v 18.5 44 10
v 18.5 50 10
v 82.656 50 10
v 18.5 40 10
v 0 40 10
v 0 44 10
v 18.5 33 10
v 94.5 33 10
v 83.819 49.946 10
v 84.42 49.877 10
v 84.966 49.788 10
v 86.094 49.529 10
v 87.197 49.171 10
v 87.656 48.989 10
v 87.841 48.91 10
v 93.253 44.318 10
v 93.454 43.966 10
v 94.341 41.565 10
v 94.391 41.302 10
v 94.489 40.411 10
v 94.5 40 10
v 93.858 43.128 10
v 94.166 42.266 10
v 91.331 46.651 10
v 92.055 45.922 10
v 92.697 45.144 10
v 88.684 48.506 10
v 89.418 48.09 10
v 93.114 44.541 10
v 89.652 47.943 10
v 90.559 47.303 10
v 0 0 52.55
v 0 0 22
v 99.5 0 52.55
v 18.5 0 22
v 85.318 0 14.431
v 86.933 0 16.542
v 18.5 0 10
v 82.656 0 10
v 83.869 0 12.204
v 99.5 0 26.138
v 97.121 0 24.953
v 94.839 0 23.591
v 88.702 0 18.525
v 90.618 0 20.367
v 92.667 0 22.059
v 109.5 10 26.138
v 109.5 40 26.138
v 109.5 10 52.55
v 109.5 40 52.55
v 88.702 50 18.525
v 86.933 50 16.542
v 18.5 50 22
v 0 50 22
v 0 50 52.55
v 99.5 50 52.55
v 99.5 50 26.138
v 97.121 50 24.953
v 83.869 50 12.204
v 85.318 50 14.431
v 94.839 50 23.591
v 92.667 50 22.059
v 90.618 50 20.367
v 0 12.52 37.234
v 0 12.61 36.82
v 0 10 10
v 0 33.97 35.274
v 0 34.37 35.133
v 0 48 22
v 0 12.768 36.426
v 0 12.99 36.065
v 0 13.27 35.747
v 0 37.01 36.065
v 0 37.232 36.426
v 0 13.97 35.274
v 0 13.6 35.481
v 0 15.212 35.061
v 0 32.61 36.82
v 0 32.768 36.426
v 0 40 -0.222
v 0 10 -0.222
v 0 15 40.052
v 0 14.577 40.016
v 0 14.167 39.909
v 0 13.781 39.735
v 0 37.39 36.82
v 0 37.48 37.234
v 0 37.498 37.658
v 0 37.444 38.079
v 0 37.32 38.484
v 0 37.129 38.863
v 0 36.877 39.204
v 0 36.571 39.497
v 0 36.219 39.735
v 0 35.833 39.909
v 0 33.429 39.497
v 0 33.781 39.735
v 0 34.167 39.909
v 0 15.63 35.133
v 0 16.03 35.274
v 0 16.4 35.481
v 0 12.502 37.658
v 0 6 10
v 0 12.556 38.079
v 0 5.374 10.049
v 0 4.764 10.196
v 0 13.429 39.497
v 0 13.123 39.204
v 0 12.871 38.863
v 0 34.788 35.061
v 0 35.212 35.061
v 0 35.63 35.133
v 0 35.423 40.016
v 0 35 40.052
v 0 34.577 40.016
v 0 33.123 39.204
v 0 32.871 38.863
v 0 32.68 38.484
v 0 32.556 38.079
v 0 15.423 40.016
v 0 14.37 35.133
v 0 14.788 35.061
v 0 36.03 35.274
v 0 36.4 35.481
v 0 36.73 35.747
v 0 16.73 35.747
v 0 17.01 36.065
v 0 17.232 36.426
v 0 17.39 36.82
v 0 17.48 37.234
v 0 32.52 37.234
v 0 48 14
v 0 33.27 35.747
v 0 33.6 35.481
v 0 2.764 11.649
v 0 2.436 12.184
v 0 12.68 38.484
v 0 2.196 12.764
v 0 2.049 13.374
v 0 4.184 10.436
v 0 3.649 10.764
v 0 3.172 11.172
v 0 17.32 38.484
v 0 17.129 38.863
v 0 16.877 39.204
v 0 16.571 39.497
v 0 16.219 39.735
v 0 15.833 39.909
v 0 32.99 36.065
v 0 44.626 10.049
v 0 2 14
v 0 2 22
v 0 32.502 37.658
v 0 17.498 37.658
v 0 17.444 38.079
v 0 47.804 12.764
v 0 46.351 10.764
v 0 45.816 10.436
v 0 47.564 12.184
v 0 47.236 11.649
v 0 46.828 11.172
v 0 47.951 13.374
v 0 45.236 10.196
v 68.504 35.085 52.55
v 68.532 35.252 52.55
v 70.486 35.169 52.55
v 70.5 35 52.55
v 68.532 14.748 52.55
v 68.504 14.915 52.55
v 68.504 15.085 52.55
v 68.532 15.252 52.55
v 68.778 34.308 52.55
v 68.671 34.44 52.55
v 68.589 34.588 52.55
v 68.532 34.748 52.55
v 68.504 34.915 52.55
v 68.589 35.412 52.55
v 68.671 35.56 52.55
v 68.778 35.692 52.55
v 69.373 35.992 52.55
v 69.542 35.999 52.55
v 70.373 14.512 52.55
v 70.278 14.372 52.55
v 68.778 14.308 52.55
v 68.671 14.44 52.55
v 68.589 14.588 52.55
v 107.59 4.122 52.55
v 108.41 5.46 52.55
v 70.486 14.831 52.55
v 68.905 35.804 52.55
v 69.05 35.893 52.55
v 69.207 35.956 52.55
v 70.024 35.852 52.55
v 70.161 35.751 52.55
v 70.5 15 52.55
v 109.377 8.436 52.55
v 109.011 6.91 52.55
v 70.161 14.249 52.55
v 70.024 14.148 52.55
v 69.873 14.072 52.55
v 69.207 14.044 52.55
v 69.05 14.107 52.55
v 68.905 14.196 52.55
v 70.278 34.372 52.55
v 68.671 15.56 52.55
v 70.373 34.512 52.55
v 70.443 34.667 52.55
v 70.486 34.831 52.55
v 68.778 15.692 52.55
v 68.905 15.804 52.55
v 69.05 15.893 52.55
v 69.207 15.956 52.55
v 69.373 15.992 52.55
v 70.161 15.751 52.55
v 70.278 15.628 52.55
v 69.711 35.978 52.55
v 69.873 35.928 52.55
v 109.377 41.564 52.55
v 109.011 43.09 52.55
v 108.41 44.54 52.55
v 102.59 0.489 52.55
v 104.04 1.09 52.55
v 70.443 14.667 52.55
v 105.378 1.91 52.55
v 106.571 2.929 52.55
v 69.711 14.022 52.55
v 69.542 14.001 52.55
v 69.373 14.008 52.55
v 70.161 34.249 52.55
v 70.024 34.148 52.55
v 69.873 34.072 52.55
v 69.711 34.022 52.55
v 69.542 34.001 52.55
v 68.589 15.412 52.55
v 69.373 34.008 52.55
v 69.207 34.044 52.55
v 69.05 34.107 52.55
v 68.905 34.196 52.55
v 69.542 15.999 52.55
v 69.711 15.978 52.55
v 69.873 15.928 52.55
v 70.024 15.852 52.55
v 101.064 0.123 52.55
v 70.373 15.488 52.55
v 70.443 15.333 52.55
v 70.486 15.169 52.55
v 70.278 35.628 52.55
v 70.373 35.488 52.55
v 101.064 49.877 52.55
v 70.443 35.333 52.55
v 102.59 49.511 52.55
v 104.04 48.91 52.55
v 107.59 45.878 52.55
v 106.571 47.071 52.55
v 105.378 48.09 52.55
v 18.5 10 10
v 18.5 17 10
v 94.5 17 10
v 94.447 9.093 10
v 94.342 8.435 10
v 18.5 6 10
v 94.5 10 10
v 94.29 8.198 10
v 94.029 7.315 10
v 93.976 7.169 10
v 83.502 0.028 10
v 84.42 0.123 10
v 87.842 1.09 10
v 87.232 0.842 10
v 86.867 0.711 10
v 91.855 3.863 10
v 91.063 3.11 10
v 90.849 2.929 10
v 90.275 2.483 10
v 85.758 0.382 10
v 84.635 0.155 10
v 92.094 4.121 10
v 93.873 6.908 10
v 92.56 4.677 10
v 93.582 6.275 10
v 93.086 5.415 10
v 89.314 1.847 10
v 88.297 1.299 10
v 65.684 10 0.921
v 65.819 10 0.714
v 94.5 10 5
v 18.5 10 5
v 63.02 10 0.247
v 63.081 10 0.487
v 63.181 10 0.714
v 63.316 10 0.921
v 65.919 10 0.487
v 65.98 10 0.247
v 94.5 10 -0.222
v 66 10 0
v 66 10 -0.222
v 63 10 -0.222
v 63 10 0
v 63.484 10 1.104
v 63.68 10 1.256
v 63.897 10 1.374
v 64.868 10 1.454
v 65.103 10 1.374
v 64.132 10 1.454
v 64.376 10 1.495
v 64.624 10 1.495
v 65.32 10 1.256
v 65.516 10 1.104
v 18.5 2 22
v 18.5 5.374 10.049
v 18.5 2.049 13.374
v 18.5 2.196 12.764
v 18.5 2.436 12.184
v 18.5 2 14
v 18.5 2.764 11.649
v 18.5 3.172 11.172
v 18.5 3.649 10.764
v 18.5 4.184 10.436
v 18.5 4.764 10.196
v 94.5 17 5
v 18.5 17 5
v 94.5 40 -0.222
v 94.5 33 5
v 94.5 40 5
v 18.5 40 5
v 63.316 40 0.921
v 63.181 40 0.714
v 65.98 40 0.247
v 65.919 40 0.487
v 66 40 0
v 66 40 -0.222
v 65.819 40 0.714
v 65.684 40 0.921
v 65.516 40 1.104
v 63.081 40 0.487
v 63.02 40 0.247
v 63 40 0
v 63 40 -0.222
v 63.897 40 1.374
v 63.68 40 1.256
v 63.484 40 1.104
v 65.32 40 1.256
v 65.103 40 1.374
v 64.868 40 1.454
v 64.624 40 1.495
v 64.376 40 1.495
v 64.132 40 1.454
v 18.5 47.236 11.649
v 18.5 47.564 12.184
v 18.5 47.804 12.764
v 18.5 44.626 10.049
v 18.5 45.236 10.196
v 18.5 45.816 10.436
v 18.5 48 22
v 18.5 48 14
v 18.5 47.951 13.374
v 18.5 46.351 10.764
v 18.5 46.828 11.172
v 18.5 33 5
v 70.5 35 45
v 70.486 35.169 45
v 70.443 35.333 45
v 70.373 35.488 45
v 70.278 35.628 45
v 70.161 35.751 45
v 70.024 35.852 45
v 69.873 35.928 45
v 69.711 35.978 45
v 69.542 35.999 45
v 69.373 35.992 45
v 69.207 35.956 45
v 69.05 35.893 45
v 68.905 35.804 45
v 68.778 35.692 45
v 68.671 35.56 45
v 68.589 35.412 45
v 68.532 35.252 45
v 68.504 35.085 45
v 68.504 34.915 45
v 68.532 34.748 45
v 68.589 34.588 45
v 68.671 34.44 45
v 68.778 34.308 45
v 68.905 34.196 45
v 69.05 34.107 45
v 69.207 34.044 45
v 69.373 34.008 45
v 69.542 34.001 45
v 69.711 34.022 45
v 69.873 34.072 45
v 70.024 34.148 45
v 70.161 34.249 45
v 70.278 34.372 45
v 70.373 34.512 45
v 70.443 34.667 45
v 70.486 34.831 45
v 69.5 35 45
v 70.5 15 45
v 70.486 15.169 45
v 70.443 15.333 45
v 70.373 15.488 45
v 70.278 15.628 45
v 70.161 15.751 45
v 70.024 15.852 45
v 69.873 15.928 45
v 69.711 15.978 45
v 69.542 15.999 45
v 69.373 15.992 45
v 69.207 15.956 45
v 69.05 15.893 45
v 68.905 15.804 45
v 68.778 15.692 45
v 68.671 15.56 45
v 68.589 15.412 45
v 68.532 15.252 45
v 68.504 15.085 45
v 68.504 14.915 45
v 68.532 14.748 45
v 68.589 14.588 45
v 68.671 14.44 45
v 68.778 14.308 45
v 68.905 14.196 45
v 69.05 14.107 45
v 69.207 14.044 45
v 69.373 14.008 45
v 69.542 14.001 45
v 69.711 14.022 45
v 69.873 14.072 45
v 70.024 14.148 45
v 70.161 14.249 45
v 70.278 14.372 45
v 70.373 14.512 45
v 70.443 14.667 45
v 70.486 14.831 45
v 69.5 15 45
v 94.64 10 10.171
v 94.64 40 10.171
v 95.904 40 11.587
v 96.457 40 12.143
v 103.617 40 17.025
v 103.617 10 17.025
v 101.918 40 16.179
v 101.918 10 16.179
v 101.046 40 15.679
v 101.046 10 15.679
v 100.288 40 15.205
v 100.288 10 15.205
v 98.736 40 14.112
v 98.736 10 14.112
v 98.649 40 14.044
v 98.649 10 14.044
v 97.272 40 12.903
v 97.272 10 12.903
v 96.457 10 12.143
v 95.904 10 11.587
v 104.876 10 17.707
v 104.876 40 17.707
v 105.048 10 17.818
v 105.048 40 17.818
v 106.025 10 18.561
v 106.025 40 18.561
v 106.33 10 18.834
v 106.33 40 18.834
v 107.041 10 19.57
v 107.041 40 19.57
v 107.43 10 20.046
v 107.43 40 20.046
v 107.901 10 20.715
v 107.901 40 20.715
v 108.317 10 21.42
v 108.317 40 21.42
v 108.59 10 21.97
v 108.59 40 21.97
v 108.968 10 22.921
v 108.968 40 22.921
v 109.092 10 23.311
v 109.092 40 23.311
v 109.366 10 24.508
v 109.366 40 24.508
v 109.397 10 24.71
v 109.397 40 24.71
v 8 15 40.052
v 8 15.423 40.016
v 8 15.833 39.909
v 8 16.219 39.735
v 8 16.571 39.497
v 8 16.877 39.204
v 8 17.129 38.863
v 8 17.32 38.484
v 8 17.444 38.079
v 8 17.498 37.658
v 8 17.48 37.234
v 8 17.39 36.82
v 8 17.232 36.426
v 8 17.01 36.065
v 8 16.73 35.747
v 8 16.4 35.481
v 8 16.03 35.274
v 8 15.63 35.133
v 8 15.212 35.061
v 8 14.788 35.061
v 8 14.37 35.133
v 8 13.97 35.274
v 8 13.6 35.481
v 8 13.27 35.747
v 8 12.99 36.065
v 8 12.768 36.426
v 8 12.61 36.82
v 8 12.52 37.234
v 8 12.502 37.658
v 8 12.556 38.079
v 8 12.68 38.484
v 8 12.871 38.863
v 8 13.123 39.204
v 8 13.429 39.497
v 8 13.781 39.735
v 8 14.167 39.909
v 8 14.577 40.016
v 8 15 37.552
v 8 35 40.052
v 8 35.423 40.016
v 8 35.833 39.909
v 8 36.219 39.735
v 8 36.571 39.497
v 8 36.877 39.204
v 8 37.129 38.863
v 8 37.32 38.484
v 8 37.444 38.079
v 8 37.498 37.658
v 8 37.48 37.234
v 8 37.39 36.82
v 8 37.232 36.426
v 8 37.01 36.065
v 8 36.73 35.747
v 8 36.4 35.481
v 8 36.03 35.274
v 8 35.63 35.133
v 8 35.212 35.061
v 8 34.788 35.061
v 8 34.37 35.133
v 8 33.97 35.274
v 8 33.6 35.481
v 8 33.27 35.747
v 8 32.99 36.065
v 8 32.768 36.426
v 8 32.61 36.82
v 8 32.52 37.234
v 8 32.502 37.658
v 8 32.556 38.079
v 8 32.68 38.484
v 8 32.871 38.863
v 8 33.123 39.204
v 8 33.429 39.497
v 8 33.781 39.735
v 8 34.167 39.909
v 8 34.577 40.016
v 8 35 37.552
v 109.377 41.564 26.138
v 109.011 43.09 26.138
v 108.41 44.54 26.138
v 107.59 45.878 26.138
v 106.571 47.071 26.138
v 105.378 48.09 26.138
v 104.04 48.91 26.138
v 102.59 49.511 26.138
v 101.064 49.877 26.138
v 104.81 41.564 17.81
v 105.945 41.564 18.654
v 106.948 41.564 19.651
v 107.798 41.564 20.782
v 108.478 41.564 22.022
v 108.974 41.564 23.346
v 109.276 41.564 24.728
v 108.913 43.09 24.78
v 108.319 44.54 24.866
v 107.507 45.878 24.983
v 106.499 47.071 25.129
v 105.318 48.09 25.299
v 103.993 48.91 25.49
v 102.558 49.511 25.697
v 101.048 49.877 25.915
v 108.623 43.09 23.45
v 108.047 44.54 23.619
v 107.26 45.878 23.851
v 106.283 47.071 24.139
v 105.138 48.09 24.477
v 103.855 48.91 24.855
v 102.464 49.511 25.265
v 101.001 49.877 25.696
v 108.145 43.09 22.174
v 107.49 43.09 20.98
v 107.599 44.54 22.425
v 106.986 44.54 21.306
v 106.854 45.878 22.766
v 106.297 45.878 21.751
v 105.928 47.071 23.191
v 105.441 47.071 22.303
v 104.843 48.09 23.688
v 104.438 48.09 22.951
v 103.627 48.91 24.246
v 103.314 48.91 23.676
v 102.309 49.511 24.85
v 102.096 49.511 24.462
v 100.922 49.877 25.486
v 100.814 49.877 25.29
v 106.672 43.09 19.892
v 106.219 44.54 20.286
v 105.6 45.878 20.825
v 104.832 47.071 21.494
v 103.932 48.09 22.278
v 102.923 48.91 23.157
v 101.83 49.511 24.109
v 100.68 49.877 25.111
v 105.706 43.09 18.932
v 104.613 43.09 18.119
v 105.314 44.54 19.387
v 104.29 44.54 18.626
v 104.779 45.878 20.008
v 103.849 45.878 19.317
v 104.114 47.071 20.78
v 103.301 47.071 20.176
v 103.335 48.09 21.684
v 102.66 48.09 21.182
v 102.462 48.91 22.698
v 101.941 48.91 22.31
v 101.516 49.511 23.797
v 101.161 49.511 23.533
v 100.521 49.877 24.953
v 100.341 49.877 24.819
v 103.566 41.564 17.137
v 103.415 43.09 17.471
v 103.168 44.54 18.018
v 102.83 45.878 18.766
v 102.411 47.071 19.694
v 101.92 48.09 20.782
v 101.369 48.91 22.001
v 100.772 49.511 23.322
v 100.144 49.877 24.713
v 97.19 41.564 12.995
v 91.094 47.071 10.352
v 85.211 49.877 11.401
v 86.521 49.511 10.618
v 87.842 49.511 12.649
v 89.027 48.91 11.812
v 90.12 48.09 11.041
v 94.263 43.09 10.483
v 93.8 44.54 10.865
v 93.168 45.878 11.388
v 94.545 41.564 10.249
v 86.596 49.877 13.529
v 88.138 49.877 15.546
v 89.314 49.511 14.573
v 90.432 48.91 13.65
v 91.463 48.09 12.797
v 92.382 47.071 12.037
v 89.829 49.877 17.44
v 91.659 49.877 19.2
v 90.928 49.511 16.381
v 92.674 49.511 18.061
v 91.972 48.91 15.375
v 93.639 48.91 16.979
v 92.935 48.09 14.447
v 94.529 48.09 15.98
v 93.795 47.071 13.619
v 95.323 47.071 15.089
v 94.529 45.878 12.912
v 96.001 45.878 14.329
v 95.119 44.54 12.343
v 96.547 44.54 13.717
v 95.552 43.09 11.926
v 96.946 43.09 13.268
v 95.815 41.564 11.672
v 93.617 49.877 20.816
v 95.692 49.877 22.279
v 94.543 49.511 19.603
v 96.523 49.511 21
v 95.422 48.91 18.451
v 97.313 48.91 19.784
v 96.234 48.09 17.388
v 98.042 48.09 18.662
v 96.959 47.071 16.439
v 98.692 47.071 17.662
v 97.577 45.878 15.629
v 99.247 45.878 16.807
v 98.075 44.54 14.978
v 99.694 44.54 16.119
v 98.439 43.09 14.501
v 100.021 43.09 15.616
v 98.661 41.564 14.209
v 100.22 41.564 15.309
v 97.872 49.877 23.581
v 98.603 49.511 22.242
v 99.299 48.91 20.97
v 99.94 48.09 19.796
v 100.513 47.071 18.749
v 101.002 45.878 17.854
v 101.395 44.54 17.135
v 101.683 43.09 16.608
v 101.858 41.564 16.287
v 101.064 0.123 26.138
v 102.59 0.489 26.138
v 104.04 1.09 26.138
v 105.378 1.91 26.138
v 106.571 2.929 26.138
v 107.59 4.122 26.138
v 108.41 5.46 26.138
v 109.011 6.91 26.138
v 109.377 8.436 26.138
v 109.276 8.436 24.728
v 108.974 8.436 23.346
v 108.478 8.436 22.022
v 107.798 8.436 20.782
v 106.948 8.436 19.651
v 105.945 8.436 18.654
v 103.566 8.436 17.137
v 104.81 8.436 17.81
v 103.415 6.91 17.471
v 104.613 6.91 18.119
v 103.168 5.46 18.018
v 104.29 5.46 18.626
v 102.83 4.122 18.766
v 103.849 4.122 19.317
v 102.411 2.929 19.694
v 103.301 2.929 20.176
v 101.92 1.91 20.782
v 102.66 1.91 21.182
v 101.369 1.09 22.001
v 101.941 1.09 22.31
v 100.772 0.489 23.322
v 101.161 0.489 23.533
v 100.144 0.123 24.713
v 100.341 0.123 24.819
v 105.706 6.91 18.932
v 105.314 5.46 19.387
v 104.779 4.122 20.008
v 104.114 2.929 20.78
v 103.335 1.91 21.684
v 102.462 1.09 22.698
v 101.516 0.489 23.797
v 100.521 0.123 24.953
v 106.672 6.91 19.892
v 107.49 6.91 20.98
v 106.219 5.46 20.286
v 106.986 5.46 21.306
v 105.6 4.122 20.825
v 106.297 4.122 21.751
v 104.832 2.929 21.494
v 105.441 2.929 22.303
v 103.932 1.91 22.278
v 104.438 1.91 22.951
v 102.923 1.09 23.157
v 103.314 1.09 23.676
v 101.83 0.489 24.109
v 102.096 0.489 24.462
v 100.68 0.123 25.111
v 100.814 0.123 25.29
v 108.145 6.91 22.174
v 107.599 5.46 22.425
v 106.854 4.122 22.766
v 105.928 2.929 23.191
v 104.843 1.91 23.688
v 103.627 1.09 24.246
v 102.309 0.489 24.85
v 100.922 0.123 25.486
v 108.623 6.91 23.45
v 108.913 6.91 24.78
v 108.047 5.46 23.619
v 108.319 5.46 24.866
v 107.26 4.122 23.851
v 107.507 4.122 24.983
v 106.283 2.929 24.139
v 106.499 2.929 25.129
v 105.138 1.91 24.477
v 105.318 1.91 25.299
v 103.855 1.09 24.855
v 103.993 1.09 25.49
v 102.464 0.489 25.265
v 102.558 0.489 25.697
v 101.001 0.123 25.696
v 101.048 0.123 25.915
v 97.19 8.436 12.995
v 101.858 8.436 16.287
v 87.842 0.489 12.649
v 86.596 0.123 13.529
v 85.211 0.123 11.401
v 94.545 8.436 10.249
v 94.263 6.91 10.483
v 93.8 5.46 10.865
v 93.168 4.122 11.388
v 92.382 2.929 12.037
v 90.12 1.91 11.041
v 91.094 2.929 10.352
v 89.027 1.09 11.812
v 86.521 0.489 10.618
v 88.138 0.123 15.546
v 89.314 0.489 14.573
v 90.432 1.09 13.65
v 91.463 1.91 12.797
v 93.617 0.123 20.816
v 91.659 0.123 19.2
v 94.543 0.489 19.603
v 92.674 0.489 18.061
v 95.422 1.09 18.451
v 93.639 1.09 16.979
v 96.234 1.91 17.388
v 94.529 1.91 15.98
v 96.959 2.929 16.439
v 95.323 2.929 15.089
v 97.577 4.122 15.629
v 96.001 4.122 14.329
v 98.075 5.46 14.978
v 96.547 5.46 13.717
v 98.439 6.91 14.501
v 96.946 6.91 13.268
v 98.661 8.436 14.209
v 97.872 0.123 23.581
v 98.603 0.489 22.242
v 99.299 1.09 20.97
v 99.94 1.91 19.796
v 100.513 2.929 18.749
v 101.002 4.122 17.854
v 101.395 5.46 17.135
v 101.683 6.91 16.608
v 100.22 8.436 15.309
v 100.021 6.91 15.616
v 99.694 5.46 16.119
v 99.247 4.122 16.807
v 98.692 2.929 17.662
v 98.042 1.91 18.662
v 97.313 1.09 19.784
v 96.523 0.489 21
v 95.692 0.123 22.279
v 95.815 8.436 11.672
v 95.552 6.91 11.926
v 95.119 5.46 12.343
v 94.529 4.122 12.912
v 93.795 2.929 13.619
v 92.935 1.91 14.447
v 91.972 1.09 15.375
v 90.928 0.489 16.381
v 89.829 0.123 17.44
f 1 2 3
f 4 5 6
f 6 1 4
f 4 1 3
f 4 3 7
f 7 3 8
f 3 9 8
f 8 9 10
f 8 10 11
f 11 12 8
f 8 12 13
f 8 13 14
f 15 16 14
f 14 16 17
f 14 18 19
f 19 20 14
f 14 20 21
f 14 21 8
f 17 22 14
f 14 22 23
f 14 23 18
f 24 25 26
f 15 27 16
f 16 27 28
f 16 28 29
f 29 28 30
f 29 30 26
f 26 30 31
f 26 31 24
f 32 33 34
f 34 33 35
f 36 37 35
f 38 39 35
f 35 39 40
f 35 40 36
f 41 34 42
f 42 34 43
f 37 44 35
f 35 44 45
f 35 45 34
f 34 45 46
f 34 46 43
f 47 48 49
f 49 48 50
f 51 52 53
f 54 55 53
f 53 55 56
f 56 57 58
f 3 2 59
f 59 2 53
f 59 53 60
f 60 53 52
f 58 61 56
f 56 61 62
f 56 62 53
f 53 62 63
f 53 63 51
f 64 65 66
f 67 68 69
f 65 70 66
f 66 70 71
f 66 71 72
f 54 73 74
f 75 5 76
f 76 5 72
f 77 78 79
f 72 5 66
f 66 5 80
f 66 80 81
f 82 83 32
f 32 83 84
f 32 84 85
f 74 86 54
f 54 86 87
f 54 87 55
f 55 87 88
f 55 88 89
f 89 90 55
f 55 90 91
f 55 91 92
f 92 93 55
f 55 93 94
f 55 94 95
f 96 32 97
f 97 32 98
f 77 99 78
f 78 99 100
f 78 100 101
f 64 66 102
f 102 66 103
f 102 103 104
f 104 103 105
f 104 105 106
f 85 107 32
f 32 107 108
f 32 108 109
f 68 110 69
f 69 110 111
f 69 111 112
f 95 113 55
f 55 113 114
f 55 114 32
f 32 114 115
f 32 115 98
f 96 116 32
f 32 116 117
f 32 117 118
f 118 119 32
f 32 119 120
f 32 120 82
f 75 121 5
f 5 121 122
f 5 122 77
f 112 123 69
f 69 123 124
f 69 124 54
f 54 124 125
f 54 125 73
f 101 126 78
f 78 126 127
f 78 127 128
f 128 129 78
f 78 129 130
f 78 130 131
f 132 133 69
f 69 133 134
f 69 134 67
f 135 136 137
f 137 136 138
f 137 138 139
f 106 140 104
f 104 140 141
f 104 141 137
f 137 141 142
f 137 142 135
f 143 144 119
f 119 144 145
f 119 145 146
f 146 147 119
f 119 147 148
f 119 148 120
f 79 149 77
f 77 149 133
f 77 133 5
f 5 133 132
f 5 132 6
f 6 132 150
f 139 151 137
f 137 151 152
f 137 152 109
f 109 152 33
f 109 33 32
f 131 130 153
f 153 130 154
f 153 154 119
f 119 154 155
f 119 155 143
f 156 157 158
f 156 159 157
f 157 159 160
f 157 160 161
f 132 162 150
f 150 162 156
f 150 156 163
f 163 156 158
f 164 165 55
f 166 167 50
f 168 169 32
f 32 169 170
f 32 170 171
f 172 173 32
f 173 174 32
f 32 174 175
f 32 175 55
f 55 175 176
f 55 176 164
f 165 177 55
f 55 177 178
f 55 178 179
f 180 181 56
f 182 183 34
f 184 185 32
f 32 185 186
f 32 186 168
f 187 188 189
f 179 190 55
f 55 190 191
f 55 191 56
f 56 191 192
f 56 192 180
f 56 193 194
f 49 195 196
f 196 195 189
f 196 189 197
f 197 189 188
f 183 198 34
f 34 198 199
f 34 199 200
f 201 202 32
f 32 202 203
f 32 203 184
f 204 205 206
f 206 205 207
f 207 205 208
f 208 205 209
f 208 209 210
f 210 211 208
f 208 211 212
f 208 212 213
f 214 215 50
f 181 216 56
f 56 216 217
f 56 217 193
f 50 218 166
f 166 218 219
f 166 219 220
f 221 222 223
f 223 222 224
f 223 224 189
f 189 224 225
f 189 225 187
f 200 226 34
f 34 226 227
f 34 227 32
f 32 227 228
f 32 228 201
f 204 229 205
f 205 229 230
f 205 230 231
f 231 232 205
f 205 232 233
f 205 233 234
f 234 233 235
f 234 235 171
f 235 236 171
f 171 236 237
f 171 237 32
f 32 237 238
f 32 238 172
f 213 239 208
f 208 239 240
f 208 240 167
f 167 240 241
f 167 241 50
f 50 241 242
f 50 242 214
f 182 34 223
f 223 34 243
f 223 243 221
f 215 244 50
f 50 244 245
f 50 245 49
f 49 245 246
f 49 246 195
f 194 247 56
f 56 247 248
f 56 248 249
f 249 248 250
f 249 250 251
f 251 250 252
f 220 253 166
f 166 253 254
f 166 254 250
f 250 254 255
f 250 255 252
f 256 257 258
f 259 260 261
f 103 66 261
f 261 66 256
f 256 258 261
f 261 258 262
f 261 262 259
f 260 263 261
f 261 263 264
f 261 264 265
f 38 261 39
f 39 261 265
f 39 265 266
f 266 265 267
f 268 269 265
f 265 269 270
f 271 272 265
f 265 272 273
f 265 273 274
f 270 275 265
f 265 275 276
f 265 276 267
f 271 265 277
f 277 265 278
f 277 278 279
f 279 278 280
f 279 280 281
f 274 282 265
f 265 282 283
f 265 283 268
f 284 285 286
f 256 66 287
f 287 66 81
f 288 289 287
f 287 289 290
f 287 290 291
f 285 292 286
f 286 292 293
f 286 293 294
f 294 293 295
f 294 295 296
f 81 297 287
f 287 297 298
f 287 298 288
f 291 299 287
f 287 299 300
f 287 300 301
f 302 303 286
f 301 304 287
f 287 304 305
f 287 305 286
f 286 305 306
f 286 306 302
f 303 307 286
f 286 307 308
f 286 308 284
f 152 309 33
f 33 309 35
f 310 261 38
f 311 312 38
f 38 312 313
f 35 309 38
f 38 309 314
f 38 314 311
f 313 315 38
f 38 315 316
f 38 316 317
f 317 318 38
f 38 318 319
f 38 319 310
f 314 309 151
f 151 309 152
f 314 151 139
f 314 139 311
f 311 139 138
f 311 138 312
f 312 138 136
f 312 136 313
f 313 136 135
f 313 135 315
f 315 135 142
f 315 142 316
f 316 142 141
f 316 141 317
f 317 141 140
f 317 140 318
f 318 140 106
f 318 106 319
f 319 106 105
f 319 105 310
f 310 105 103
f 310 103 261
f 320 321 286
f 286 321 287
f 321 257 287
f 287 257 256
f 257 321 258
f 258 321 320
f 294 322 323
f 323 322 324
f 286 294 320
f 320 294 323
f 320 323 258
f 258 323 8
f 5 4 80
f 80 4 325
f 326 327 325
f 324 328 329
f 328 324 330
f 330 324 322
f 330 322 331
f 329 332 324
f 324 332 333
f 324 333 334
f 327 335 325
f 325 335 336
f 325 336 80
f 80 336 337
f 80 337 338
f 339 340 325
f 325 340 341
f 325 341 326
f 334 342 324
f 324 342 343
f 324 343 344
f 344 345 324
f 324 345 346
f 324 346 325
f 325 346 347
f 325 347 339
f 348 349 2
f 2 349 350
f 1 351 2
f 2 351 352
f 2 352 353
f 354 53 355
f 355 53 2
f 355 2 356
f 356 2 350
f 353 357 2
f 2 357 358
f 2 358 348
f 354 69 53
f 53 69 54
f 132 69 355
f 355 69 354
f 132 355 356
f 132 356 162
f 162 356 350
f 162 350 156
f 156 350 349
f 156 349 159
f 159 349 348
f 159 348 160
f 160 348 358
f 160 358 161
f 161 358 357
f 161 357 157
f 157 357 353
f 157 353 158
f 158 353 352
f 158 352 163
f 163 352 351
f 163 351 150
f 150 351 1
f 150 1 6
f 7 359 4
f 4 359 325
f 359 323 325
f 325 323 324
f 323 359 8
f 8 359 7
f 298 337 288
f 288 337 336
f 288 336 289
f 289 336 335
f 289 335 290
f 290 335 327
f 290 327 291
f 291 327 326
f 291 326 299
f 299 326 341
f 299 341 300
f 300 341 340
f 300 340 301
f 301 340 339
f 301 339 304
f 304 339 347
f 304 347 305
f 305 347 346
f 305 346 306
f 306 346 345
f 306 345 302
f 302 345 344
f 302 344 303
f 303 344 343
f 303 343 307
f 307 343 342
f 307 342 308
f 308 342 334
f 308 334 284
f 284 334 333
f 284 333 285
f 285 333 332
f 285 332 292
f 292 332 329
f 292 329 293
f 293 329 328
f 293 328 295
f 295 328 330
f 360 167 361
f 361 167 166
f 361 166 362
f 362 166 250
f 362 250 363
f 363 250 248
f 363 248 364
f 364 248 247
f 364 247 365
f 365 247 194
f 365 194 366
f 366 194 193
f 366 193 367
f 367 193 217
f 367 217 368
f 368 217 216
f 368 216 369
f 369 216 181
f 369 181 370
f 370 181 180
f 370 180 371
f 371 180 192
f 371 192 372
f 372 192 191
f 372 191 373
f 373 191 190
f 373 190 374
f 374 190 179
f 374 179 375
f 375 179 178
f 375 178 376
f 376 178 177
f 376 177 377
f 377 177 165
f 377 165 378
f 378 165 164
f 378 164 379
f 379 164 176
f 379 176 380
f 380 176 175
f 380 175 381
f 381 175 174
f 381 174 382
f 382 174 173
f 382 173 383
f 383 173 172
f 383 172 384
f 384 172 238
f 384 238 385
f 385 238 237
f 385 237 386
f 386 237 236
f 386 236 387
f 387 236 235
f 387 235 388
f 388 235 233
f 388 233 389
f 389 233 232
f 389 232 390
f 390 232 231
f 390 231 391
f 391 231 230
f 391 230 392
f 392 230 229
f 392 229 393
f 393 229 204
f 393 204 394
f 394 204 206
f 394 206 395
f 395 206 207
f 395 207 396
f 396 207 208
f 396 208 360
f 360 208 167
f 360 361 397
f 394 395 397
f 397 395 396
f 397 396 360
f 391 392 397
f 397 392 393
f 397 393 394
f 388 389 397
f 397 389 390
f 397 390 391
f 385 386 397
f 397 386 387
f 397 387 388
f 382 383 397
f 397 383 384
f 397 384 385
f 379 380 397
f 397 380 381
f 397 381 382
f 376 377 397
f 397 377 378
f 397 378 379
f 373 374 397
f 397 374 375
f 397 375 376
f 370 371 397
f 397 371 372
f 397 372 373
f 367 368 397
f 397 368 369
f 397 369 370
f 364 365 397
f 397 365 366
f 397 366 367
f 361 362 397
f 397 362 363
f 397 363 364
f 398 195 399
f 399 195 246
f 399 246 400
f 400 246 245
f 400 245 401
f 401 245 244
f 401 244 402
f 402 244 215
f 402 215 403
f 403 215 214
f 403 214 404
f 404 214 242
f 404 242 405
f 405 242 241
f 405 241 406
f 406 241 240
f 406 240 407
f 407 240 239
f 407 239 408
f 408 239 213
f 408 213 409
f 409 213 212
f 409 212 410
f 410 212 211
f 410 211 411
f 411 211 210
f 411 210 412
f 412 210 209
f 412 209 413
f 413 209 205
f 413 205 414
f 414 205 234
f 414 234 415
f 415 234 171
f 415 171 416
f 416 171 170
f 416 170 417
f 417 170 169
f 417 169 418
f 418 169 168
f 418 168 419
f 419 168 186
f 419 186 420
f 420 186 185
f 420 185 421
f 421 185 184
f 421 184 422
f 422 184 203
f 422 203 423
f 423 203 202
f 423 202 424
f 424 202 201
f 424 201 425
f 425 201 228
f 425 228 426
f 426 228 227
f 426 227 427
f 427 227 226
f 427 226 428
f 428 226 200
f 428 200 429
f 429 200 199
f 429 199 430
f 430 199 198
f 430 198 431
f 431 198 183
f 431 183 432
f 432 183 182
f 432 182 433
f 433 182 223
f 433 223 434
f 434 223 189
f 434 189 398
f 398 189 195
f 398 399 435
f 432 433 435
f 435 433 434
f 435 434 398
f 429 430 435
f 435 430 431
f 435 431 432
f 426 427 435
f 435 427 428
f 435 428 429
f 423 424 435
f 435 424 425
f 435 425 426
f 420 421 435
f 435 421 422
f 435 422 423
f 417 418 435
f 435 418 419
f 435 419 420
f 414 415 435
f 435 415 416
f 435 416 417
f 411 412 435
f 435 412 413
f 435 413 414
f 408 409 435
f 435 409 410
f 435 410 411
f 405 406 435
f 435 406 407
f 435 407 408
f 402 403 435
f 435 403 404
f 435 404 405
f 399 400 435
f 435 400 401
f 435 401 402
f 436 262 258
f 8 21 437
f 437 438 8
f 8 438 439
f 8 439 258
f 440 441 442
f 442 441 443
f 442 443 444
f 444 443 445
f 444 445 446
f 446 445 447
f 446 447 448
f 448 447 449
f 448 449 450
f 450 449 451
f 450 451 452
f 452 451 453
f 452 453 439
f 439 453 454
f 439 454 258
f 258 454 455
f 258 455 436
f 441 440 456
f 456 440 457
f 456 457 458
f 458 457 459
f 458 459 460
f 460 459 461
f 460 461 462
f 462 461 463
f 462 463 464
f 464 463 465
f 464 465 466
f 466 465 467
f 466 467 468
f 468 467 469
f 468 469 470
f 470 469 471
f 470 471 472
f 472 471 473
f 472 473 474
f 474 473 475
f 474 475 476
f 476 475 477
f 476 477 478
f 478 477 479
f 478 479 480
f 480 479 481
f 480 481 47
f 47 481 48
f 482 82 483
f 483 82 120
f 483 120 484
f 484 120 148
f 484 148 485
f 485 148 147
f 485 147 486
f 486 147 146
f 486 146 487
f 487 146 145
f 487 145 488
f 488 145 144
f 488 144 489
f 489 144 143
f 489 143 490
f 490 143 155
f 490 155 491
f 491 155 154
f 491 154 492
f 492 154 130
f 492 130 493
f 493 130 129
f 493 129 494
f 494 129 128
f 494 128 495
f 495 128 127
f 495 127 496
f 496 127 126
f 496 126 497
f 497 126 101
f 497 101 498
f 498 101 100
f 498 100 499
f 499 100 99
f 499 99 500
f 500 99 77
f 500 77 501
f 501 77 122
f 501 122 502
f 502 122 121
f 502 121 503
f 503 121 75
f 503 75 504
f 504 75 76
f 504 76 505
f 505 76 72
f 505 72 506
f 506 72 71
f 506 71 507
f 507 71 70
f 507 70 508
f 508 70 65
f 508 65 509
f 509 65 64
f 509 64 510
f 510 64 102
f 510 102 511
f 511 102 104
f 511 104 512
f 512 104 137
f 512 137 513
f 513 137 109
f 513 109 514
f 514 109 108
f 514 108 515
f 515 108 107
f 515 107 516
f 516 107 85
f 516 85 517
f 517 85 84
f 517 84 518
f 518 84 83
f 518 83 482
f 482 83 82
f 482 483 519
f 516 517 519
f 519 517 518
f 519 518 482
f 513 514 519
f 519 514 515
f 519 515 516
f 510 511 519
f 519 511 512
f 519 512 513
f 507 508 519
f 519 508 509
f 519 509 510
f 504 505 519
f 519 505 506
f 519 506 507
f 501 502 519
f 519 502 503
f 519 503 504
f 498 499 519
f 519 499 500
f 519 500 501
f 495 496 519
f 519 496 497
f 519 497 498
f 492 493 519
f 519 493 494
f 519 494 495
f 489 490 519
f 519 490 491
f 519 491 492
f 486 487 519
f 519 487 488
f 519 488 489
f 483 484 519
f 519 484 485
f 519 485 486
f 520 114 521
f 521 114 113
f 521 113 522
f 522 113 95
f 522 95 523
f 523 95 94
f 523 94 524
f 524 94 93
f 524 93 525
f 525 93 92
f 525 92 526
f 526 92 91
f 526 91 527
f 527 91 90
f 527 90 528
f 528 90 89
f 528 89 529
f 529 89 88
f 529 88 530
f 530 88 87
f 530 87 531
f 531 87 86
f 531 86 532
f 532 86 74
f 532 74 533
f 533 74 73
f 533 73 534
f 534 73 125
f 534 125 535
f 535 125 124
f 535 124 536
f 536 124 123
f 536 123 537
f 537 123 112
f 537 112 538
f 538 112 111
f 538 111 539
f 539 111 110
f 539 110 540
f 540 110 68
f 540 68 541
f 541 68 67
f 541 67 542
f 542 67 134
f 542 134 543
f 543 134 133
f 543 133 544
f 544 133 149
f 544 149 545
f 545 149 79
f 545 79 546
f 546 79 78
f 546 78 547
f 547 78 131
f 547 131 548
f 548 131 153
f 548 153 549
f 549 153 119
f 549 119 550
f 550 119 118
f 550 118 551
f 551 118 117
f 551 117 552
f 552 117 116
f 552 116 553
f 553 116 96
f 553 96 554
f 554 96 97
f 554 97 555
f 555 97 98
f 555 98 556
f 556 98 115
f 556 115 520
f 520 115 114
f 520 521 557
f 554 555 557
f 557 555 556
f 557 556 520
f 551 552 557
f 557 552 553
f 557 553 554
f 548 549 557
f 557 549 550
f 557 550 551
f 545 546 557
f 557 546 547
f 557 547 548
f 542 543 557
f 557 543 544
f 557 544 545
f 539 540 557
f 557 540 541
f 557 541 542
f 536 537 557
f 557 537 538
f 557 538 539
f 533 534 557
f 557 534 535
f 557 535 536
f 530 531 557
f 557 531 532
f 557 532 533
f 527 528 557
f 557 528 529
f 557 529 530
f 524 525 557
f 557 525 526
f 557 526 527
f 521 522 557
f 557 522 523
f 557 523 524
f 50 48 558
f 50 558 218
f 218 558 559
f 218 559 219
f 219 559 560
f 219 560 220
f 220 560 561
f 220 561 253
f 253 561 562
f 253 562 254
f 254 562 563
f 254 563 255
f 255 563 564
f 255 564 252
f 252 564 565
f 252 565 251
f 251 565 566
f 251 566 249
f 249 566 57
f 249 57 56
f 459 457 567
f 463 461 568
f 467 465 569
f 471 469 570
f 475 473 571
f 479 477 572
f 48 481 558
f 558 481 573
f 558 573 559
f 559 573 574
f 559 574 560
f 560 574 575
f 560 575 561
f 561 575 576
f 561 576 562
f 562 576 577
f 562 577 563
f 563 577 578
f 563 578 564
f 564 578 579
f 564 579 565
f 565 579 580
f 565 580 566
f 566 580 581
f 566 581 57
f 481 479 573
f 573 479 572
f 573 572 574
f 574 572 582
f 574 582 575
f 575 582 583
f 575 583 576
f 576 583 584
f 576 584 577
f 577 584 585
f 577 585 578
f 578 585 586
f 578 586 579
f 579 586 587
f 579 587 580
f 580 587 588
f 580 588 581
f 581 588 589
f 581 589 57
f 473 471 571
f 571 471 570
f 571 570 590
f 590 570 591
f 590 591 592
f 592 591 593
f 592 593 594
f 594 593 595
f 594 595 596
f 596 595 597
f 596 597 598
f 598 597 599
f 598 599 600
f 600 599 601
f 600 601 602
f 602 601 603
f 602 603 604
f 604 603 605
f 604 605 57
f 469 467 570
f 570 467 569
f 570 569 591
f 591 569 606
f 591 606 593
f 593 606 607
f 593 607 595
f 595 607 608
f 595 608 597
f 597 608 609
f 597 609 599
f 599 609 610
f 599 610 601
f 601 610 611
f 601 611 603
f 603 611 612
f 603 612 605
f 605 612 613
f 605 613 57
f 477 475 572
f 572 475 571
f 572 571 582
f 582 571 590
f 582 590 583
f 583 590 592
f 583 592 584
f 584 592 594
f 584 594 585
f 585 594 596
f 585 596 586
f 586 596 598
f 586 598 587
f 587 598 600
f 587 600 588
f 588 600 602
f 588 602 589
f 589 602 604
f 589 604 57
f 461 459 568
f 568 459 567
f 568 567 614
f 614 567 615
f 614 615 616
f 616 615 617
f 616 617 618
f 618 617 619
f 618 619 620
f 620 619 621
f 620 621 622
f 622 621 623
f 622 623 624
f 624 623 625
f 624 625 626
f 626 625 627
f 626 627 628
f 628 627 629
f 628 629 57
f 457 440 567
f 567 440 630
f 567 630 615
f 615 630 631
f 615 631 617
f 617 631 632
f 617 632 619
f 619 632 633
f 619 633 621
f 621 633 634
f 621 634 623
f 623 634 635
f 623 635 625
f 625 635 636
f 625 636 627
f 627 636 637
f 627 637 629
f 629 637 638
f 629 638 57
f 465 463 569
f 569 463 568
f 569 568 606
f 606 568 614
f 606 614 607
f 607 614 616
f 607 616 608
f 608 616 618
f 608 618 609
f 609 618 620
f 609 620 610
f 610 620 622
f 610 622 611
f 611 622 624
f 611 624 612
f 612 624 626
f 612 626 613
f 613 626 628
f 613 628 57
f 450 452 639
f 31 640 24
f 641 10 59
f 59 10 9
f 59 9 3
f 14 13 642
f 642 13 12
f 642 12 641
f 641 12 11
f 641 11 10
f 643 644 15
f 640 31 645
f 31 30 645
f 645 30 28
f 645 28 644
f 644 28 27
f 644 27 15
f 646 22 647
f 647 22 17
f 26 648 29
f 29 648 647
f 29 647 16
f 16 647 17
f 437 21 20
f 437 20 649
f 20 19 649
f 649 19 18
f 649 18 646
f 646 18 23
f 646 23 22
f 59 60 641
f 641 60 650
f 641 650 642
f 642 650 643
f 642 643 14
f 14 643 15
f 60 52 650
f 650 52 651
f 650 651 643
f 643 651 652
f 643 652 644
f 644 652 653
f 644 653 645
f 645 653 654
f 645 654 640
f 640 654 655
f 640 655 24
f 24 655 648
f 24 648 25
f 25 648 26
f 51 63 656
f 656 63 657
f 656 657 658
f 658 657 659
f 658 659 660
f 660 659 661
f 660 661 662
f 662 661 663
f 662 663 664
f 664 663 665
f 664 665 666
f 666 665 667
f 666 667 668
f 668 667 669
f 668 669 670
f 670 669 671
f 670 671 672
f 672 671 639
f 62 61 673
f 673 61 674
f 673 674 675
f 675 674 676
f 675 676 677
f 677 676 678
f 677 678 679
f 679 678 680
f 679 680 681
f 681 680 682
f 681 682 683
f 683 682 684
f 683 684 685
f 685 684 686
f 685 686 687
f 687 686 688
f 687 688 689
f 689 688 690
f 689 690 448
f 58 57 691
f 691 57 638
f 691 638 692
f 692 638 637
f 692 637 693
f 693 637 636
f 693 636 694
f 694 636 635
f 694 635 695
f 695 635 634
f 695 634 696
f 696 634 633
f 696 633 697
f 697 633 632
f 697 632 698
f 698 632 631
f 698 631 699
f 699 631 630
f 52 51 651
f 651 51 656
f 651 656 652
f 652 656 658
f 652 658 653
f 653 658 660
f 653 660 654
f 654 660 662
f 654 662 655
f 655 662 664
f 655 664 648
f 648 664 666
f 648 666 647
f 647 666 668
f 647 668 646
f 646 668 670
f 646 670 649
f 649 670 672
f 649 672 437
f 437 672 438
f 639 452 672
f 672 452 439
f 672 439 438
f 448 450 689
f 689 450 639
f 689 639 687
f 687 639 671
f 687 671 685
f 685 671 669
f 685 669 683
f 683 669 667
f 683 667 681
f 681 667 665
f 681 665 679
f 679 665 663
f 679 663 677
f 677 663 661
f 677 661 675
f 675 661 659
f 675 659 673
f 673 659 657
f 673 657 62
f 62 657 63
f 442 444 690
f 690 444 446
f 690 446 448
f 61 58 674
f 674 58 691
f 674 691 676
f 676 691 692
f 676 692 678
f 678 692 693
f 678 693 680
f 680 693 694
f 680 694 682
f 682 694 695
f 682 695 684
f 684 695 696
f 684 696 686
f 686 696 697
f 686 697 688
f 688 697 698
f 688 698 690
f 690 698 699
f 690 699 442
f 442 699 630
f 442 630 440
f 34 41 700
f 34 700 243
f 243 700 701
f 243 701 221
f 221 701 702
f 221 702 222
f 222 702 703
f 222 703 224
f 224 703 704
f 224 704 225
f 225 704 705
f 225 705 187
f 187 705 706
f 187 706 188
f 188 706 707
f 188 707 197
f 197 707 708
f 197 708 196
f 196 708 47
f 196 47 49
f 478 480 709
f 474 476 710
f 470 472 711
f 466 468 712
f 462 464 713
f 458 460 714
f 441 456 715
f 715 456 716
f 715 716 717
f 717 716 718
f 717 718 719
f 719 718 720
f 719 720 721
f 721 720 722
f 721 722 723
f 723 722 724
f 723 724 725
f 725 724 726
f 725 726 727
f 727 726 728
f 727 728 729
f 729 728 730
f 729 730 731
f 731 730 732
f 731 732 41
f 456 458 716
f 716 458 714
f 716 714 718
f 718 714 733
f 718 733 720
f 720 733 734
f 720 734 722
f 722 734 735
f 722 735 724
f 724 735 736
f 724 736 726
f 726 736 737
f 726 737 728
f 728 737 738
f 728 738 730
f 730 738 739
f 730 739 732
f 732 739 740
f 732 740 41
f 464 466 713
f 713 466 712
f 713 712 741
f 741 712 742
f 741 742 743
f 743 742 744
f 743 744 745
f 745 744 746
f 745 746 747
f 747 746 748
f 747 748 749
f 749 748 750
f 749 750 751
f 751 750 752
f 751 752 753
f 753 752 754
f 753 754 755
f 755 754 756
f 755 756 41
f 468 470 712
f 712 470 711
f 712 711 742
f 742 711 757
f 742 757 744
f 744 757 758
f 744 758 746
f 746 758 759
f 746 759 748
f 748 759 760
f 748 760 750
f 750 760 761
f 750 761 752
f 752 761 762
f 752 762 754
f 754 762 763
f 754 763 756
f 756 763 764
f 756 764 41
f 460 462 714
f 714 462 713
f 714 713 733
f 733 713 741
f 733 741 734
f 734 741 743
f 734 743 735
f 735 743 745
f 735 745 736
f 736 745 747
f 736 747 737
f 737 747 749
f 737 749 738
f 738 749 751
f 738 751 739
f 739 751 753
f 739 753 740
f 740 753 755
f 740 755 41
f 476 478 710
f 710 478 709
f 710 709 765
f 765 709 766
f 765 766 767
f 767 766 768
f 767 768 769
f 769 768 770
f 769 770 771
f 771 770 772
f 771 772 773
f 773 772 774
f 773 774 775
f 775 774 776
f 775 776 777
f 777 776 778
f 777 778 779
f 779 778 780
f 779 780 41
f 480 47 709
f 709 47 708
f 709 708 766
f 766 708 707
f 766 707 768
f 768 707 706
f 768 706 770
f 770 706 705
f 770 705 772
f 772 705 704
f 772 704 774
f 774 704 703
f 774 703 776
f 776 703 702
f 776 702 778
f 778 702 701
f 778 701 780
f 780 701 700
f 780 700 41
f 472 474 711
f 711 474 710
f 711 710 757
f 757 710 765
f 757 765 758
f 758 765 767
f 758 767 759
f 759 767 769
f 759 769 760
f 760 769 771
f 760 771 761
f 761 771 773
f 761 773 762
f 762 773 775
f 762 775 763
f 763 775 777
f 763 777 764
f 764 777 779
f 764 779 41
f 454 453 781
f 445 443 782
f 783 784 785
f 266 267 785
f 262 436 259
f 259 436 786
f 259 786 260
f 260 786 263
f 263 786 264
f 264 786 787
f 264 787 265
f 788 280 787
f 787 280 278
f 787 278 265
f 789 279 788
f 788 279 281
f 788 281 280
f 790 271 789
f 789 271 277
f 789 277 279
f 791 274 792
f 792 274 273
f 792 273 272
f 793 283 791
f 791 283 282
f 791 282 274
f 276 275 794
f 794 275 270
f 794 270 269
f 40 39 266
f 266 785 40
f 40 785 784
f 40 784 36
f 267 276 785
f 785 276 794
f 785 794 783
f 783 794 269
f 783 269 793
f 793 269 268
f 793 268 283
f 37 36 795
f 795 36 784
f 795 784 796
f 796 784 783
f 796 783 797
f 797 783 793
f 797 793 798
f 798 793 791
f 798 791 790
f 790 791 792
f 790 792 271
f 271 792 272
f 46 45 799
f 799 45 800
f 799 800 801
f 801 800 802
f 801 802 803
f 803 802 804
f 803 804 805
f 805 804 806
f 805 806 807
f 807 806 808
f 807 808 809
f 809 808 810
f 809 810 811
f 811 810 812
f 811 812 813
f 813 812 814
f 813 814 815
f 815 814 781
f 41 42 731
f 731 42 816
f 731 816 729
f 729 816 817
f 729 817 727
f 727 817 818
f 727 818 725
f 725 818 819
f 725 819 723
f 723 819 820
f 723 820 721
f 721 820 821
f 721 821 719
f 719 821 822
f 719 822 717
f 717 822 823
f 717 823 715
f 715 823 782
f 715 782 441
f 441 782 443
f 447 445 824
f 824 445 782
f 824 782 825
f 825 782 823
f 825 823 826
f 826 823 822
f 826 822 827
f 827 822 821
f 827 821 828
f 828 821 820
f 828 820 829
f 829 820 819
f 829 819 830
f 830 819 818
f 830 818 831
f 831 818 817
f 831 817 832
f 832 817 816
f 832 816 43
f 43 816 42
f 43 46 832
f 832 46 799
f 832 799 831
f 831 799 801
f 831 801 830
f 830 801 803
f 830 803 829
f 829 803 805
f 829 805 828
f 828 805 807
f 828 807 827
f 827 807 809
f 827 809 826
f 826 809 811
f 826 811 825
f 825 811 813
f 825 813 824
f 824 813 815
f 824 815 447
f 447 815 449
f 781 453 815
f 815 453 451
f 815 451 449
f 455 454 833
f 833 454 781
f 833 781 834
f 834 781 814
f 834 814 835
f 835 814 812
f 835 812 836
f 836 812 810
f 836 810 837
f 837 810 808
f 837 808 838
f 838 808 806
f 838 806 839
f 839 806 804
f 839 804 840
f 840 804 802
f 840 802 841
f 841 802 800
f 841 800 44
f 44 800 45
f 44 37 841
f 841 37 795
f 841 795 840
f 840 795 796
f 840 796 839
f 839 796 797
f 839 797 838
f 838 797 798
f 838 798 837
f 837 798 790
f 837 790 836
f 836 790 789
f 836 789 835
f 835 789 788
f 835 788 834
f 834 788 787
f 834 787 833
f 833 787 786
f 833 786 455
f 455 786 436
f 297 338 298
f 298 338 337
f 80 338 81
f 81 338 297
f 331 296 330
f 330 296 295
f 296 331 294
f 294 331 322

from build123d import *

# Parameters (mm, degrees)
SKETCH1_W           = 109.5
SKETCH1_H           = 50
BOSS_EXTRUDE1_DEPTH = 52.55
SKETCH2_W           = 109.5
SKETCH2_H           = 10
CUT_EXTRUDE1_DEPTH  = 10
SKETCH3_W           = 18.5
SKETCH3_H           = 12
CUT_EXTRUDE2_DEPTH  = 2
FILLET1_R           = 4
SKETCH4_W           = 91
SKETCH4_H           = 5
CUT_EXTRUDE3_DEPTH  = 7
SKETCH5_W           = 23.393715289
SKETCH5_H           = 10
CUT_EXTRUDE4_DEPTH  = 128.873971159
SKETCH6_W           = 94.5
SKETCH6_H           = 10
CUT_EXTRUDE5_DEPTH  = 10
SKETCH8_W           = 18.5
SKETCH8_H           = 12
CUT_EXTRUDE6_DEPTH  = 2
FILLET2_R           = 4
SKETCH9_W           = 76
SKETCH9_H           = 5
CUT_EXTRUDE7_DEPTH  = 7
SKETCH10_R          = 1.5
CUT_EXTRUDE8_DEPTH  = 128.873971159
SKETCH11_R          = 1
CUT_EXTRUDE9_DEPTH  = 7.55
CUT_EXTRUDE10_DEPTH = 132.34592685
FILLET3_R           = 10
SKETCH13_R          = 2.5
CUT_EXTRUDE11_DEPTH = 8
FILLET4_R           = 10
FILLET5_R           = 10
SKETCH15_W          = 63
SKETCH15_H          = 30
SKETCH15_W_2        = 28.5
BOSS_EXTRUDE2_DEPTH = 0.222


with BuildPart() as part:
    # Sketch1 → Boss-Extrude1 (new body)
    with BuildSketch(Plane.XY):
        with Locations((54.75, 25)):
            Rectangle(SKETCH1_W, SKETCH1_H)
    extrude(amount=BOSS_EXTRUDE1_DEPTH)

    # Sketch2 → Cut-Extrude1 (cut)
    with BuildSketch(Plane.XZ):
        with Locations((54.75, 5)):
            Rectangle(SKETCH2_W, SKETCH2_H)
    extrude(amount=-CUT_EXTRUDE1_DEPTH, mode=Mode.SUBTRACT)

    # Sketch3 → Cut-Extrude2 (cut)
    with BuildSketch(Plane.XZ):
        with Locations((9.25, 16)):
            Rectangle(SKETCH3_W, SKETCH3_H)
    extrude(amount=-CUT_EXTRUDE2_DEPTH, mode=Mode.SUBTRACT)

    # Fillet1
    fillet1_edges = [part.edges().sort_by_distance(p)[0] for p in [
        (9.25, 2, 10),
    ]]
    fillet(fillet1_edges, radius=FILLET1_R)

    # Sketch4 → Cut-Extrude3 (cut)
    with BuildSketch(Plane.XZ.offset(-10)):
        with Locations((64, 7.5)):
            Rectangle(SKETCH4_W, SKETCH4_H)
    extrude(amount=-CUT_EXTRUDE3_DEPTH, mode=Mode.SUBTRACT)

    # Sketch5 → Cut-Extrude4 (cut, through all)
    with BuildSketch(Plane.XZ.offset(-10)):
        with Locations((106.196857644, 5)):
            Rectangle(SKETCH5_W, SKETCH5_H)
    extrude(amount=-CUT_EXTRUDE4_DEPTH, mode=Mode.SUBTRACT)

    # Sketch6 → Cut-Extrude5 (cut)
    with BuildSketch(Plane(origin=(0, 50, 0), x_dir=(1, 0, 0), z_dir=(0, 1, 0))):
        with Locations((47.25, -5)):
            Rectangle(SKETCH6_W, SKETCH6_H)
    extrude(amount=-CUT_EXTRUDE5_DEPTH, mode=Mode.SUBTRACT)

    # Sketch8 → Cut-Extrude6 (cut)
    with BuildSketch(Plane(origin=(0, 50, 0), x_dir=(1, 0, 0), z_dir=(0, 1, 0))):
        with Locations((9.25, -16)):
            Rectangle(SKETCH8_W, SKETCH8_H)
    extrude(amount=-CUT_EXTRUDE6_DEPTH, mode=Mode.SUBTRACT)

    # Fillet2
    fillet2_edges = [part.edges().sort_by_distance(p)[0] for p in [
        (9.25, 48, 10),
    ]]
    fillet(fillet2_edges, radius=FILLET2_R)

    # Sketch9 → Cut-Extrude7 (cut)
    with BuildSketch(Plane(origin=(0, 40, 0), x_dir=(1, 0, 0), z_dir=(0, 1, 0))):
        with Locations((56.5, -7.5)):
            Rectangle(SKETCH9_W, SKETCH9_H)
    extrude(amount=-CUT_EXTRUDE7_DEPTH, mode=Mode.SUBTRACT)

    # Sketch10 → Cut-Extrude8 (cut, through all)
    with BuildSketch(Plane(origin=(0, 40, 0), x_dir=(1, 0, 0), z_dir=(0, 1, 0))):
        with Locations((64.5, 0)):
            Circle(SKETCH10_R)
    extrude(amount=-CUT_EXTRUDE8_DEPTH, mode=Mode.SUBTRACT)

    # Sketch11 → Cut-Extrude9 (cut)
    with BuildSketch(Plane.XY.offset(52.55)):
        with Locations((69.5, 15)):
            Circle(SKETCH11_R)
        with Locations((69.5, 35)):
            Circle(SKETCH11_R)
    extrude(amount=-CUT_EXTRUDE9_DEPTH, mode=Mode.SUBTRACT)

    # Sketch12 → Cut-Extrude10 (cut, through all)
    with BuildSketch(Plane(origin=(0, 50, 0), x_dir=(1, 0, 0), z_dir=(0, 1, 0))):
        with BuildLine():
            Line((94.5, -10), (109.5, -10))
            Line((109.5, -10), (109.5, -18.85))
            ThreePointArc((109.5, -18.85), (101.204423403, -15.77343491), (94.5, -10))
        make_face()
    extrude(amount=-CUT_EXTRUDE10_DEPTH, mode=Mode.SUBTRACT)

    # Fillet3
    fillet3_edges = [part.edges().sort_by_distance(p)[0] for p in [
        (109.5, 25, 18.85),
    ]]
    fillet(fillet3_edges, radius=FILLET3_R)

    # Sketch13 → Cut-Extrude11 (cut)
    with BuildSketch(Plane.ZY):
        with Locations((37.552, 35)):
            Circle(SKETCH13_R)
        with Locations((37.552, 15)):
            Circle(SKETCH13_R)
    extrude(amount=-CUT_EXTRUDE11_DEPTH, mode=Mode.SUBTRACT)

    # Fillet4
    fillet4_edges = [part.edges().sort_by_distance(p)[0] for p in [
        (98.648531421, 50, 14.04433448),
        (107.901372758, 50, 20.714757596),
        (109.5, 50, 39.344247885),
    ]]
    fillet(fillet4_edges, radius=FILLET4_R)

    # Fillet5
    fillet5_edges = [part.edges().sort_by_distance(p)[0] for p in [
        (98.648531421, 0, 14.04433448),
        (107.901372758, 0, 20.714757596),
        (109.5, 0, 39.344247885),
    ]]
    fillet(fillet5_edges, radius=FILLET5_R)

    # Sketch15 → Boss-Extrude2 (add)
    with BuildSketch(Plane(origin=(0, 0, 0), x_dir=(-1, 0, 0), z_dir=(0, 0, -1))):
        with Locations((-31.5, 25)):
            Rectangle(SKETCH15_W, SKETCH15_H)
        with Locations((-80.25, 25)):
            Rectangle(SKETCH15_W_2, SKETCH15_H)
    extrude(amount=BOSS_EXTRUDE2_DEPTH)


solid = part.part
